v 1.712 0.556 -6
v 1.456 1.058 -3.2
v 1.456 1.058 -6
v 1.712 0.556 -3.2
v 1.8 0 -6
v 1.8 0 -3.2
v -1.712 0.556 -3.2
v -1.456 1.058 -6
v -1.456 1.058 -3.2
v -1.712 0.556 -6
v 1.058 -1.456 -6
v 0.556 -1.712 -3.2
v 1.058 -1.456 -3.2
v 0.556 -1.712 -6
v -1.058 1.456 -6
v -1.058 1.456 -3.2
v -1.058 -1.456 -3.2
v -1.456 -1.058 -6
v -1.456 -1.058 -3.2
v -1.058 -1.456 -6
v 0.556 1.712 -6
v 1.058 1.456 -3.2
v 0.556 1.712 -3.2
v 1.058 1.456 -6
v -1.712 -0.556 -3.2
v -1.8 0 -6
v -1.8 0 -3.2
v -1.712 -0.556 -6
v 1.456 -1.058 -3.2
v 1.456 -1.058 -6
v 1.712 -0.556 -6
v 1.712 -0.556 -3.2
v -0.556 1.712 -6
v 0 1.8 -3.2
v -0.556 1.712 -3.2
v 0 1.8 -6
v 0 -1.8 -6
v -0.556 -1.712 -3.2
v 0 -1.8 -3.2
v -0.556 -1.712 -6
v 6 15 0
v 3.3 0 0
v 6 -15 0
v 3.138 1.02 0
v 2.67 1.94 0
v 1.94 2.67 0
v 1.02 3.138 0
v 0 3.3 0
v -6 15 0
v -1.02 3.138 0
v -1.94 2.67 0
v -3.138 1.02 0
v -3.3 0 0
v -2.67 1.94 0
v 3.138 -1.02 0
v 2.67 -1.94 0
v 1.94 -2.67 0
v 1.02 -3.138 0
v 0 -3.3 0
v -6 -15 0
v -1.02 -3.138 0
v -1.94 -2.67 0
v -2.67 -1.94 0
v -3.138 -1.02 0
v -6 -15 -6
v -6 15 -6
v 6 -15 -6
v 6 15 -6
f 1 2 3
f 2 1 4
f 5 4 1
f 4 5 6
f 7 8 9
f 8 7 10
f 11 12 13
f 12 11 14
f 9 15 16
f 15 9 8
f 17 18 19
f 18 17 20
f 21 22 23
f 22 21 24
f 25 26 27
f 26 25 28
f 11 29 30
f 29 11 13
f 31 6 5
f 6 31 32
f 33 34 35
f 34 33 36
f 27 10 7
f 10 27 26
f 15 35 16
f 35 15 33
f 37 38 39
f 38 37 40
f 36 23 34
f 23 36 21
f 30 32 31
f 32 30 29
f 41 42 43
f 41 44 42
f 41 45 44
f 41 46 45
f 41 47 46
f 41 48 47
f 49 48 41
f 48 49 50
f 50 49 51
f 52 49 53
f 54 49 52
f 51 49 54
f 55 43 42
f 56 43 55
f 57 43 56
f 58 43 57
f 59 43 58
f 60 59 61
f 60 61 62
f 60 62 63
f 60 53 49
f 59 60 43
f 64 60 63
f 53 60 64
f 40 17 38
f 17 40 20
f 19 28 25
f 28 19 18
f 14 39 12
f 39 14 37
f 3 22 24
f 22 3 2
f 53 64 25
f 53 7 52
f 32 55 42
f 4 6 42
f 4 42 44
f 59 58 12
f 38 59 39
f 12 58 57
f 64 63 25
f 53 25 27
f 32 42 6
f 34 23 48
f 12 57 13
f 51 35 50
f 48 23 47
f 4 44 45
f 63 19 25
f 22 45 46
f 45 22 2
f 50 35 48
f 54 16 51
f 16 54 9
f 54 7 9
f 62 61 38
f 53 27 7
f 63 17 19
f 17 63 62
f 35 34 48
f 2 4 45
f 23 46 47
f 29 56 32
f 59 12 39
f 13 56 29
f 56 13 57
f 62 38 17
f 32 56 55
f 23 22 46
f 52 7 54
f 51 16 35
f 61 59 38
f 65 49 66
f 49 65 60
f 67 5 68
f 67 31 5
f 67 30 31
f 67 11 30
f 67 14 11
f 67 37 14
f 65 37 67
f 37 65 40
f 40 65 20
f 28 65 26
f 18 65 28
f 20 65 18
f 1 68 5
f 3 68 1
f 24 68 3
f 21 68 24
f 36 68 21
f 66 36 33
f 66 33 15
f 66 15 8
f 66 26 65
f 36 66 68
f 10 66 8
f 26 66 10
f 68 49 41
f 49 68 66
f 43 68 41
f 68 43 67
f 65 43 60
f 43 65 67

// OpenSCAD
module screw_hole() {
    large = 100;
    cylinder(h=large, d=3.6, $fn=20);
    cylinder(h=3.2, d1=6.6, d2=3.6, $fn=20);
}


mirror([0,0,1]) difference() {
    linear_extrude(6) square([12,30], center=true);
    screw_hole();
}
